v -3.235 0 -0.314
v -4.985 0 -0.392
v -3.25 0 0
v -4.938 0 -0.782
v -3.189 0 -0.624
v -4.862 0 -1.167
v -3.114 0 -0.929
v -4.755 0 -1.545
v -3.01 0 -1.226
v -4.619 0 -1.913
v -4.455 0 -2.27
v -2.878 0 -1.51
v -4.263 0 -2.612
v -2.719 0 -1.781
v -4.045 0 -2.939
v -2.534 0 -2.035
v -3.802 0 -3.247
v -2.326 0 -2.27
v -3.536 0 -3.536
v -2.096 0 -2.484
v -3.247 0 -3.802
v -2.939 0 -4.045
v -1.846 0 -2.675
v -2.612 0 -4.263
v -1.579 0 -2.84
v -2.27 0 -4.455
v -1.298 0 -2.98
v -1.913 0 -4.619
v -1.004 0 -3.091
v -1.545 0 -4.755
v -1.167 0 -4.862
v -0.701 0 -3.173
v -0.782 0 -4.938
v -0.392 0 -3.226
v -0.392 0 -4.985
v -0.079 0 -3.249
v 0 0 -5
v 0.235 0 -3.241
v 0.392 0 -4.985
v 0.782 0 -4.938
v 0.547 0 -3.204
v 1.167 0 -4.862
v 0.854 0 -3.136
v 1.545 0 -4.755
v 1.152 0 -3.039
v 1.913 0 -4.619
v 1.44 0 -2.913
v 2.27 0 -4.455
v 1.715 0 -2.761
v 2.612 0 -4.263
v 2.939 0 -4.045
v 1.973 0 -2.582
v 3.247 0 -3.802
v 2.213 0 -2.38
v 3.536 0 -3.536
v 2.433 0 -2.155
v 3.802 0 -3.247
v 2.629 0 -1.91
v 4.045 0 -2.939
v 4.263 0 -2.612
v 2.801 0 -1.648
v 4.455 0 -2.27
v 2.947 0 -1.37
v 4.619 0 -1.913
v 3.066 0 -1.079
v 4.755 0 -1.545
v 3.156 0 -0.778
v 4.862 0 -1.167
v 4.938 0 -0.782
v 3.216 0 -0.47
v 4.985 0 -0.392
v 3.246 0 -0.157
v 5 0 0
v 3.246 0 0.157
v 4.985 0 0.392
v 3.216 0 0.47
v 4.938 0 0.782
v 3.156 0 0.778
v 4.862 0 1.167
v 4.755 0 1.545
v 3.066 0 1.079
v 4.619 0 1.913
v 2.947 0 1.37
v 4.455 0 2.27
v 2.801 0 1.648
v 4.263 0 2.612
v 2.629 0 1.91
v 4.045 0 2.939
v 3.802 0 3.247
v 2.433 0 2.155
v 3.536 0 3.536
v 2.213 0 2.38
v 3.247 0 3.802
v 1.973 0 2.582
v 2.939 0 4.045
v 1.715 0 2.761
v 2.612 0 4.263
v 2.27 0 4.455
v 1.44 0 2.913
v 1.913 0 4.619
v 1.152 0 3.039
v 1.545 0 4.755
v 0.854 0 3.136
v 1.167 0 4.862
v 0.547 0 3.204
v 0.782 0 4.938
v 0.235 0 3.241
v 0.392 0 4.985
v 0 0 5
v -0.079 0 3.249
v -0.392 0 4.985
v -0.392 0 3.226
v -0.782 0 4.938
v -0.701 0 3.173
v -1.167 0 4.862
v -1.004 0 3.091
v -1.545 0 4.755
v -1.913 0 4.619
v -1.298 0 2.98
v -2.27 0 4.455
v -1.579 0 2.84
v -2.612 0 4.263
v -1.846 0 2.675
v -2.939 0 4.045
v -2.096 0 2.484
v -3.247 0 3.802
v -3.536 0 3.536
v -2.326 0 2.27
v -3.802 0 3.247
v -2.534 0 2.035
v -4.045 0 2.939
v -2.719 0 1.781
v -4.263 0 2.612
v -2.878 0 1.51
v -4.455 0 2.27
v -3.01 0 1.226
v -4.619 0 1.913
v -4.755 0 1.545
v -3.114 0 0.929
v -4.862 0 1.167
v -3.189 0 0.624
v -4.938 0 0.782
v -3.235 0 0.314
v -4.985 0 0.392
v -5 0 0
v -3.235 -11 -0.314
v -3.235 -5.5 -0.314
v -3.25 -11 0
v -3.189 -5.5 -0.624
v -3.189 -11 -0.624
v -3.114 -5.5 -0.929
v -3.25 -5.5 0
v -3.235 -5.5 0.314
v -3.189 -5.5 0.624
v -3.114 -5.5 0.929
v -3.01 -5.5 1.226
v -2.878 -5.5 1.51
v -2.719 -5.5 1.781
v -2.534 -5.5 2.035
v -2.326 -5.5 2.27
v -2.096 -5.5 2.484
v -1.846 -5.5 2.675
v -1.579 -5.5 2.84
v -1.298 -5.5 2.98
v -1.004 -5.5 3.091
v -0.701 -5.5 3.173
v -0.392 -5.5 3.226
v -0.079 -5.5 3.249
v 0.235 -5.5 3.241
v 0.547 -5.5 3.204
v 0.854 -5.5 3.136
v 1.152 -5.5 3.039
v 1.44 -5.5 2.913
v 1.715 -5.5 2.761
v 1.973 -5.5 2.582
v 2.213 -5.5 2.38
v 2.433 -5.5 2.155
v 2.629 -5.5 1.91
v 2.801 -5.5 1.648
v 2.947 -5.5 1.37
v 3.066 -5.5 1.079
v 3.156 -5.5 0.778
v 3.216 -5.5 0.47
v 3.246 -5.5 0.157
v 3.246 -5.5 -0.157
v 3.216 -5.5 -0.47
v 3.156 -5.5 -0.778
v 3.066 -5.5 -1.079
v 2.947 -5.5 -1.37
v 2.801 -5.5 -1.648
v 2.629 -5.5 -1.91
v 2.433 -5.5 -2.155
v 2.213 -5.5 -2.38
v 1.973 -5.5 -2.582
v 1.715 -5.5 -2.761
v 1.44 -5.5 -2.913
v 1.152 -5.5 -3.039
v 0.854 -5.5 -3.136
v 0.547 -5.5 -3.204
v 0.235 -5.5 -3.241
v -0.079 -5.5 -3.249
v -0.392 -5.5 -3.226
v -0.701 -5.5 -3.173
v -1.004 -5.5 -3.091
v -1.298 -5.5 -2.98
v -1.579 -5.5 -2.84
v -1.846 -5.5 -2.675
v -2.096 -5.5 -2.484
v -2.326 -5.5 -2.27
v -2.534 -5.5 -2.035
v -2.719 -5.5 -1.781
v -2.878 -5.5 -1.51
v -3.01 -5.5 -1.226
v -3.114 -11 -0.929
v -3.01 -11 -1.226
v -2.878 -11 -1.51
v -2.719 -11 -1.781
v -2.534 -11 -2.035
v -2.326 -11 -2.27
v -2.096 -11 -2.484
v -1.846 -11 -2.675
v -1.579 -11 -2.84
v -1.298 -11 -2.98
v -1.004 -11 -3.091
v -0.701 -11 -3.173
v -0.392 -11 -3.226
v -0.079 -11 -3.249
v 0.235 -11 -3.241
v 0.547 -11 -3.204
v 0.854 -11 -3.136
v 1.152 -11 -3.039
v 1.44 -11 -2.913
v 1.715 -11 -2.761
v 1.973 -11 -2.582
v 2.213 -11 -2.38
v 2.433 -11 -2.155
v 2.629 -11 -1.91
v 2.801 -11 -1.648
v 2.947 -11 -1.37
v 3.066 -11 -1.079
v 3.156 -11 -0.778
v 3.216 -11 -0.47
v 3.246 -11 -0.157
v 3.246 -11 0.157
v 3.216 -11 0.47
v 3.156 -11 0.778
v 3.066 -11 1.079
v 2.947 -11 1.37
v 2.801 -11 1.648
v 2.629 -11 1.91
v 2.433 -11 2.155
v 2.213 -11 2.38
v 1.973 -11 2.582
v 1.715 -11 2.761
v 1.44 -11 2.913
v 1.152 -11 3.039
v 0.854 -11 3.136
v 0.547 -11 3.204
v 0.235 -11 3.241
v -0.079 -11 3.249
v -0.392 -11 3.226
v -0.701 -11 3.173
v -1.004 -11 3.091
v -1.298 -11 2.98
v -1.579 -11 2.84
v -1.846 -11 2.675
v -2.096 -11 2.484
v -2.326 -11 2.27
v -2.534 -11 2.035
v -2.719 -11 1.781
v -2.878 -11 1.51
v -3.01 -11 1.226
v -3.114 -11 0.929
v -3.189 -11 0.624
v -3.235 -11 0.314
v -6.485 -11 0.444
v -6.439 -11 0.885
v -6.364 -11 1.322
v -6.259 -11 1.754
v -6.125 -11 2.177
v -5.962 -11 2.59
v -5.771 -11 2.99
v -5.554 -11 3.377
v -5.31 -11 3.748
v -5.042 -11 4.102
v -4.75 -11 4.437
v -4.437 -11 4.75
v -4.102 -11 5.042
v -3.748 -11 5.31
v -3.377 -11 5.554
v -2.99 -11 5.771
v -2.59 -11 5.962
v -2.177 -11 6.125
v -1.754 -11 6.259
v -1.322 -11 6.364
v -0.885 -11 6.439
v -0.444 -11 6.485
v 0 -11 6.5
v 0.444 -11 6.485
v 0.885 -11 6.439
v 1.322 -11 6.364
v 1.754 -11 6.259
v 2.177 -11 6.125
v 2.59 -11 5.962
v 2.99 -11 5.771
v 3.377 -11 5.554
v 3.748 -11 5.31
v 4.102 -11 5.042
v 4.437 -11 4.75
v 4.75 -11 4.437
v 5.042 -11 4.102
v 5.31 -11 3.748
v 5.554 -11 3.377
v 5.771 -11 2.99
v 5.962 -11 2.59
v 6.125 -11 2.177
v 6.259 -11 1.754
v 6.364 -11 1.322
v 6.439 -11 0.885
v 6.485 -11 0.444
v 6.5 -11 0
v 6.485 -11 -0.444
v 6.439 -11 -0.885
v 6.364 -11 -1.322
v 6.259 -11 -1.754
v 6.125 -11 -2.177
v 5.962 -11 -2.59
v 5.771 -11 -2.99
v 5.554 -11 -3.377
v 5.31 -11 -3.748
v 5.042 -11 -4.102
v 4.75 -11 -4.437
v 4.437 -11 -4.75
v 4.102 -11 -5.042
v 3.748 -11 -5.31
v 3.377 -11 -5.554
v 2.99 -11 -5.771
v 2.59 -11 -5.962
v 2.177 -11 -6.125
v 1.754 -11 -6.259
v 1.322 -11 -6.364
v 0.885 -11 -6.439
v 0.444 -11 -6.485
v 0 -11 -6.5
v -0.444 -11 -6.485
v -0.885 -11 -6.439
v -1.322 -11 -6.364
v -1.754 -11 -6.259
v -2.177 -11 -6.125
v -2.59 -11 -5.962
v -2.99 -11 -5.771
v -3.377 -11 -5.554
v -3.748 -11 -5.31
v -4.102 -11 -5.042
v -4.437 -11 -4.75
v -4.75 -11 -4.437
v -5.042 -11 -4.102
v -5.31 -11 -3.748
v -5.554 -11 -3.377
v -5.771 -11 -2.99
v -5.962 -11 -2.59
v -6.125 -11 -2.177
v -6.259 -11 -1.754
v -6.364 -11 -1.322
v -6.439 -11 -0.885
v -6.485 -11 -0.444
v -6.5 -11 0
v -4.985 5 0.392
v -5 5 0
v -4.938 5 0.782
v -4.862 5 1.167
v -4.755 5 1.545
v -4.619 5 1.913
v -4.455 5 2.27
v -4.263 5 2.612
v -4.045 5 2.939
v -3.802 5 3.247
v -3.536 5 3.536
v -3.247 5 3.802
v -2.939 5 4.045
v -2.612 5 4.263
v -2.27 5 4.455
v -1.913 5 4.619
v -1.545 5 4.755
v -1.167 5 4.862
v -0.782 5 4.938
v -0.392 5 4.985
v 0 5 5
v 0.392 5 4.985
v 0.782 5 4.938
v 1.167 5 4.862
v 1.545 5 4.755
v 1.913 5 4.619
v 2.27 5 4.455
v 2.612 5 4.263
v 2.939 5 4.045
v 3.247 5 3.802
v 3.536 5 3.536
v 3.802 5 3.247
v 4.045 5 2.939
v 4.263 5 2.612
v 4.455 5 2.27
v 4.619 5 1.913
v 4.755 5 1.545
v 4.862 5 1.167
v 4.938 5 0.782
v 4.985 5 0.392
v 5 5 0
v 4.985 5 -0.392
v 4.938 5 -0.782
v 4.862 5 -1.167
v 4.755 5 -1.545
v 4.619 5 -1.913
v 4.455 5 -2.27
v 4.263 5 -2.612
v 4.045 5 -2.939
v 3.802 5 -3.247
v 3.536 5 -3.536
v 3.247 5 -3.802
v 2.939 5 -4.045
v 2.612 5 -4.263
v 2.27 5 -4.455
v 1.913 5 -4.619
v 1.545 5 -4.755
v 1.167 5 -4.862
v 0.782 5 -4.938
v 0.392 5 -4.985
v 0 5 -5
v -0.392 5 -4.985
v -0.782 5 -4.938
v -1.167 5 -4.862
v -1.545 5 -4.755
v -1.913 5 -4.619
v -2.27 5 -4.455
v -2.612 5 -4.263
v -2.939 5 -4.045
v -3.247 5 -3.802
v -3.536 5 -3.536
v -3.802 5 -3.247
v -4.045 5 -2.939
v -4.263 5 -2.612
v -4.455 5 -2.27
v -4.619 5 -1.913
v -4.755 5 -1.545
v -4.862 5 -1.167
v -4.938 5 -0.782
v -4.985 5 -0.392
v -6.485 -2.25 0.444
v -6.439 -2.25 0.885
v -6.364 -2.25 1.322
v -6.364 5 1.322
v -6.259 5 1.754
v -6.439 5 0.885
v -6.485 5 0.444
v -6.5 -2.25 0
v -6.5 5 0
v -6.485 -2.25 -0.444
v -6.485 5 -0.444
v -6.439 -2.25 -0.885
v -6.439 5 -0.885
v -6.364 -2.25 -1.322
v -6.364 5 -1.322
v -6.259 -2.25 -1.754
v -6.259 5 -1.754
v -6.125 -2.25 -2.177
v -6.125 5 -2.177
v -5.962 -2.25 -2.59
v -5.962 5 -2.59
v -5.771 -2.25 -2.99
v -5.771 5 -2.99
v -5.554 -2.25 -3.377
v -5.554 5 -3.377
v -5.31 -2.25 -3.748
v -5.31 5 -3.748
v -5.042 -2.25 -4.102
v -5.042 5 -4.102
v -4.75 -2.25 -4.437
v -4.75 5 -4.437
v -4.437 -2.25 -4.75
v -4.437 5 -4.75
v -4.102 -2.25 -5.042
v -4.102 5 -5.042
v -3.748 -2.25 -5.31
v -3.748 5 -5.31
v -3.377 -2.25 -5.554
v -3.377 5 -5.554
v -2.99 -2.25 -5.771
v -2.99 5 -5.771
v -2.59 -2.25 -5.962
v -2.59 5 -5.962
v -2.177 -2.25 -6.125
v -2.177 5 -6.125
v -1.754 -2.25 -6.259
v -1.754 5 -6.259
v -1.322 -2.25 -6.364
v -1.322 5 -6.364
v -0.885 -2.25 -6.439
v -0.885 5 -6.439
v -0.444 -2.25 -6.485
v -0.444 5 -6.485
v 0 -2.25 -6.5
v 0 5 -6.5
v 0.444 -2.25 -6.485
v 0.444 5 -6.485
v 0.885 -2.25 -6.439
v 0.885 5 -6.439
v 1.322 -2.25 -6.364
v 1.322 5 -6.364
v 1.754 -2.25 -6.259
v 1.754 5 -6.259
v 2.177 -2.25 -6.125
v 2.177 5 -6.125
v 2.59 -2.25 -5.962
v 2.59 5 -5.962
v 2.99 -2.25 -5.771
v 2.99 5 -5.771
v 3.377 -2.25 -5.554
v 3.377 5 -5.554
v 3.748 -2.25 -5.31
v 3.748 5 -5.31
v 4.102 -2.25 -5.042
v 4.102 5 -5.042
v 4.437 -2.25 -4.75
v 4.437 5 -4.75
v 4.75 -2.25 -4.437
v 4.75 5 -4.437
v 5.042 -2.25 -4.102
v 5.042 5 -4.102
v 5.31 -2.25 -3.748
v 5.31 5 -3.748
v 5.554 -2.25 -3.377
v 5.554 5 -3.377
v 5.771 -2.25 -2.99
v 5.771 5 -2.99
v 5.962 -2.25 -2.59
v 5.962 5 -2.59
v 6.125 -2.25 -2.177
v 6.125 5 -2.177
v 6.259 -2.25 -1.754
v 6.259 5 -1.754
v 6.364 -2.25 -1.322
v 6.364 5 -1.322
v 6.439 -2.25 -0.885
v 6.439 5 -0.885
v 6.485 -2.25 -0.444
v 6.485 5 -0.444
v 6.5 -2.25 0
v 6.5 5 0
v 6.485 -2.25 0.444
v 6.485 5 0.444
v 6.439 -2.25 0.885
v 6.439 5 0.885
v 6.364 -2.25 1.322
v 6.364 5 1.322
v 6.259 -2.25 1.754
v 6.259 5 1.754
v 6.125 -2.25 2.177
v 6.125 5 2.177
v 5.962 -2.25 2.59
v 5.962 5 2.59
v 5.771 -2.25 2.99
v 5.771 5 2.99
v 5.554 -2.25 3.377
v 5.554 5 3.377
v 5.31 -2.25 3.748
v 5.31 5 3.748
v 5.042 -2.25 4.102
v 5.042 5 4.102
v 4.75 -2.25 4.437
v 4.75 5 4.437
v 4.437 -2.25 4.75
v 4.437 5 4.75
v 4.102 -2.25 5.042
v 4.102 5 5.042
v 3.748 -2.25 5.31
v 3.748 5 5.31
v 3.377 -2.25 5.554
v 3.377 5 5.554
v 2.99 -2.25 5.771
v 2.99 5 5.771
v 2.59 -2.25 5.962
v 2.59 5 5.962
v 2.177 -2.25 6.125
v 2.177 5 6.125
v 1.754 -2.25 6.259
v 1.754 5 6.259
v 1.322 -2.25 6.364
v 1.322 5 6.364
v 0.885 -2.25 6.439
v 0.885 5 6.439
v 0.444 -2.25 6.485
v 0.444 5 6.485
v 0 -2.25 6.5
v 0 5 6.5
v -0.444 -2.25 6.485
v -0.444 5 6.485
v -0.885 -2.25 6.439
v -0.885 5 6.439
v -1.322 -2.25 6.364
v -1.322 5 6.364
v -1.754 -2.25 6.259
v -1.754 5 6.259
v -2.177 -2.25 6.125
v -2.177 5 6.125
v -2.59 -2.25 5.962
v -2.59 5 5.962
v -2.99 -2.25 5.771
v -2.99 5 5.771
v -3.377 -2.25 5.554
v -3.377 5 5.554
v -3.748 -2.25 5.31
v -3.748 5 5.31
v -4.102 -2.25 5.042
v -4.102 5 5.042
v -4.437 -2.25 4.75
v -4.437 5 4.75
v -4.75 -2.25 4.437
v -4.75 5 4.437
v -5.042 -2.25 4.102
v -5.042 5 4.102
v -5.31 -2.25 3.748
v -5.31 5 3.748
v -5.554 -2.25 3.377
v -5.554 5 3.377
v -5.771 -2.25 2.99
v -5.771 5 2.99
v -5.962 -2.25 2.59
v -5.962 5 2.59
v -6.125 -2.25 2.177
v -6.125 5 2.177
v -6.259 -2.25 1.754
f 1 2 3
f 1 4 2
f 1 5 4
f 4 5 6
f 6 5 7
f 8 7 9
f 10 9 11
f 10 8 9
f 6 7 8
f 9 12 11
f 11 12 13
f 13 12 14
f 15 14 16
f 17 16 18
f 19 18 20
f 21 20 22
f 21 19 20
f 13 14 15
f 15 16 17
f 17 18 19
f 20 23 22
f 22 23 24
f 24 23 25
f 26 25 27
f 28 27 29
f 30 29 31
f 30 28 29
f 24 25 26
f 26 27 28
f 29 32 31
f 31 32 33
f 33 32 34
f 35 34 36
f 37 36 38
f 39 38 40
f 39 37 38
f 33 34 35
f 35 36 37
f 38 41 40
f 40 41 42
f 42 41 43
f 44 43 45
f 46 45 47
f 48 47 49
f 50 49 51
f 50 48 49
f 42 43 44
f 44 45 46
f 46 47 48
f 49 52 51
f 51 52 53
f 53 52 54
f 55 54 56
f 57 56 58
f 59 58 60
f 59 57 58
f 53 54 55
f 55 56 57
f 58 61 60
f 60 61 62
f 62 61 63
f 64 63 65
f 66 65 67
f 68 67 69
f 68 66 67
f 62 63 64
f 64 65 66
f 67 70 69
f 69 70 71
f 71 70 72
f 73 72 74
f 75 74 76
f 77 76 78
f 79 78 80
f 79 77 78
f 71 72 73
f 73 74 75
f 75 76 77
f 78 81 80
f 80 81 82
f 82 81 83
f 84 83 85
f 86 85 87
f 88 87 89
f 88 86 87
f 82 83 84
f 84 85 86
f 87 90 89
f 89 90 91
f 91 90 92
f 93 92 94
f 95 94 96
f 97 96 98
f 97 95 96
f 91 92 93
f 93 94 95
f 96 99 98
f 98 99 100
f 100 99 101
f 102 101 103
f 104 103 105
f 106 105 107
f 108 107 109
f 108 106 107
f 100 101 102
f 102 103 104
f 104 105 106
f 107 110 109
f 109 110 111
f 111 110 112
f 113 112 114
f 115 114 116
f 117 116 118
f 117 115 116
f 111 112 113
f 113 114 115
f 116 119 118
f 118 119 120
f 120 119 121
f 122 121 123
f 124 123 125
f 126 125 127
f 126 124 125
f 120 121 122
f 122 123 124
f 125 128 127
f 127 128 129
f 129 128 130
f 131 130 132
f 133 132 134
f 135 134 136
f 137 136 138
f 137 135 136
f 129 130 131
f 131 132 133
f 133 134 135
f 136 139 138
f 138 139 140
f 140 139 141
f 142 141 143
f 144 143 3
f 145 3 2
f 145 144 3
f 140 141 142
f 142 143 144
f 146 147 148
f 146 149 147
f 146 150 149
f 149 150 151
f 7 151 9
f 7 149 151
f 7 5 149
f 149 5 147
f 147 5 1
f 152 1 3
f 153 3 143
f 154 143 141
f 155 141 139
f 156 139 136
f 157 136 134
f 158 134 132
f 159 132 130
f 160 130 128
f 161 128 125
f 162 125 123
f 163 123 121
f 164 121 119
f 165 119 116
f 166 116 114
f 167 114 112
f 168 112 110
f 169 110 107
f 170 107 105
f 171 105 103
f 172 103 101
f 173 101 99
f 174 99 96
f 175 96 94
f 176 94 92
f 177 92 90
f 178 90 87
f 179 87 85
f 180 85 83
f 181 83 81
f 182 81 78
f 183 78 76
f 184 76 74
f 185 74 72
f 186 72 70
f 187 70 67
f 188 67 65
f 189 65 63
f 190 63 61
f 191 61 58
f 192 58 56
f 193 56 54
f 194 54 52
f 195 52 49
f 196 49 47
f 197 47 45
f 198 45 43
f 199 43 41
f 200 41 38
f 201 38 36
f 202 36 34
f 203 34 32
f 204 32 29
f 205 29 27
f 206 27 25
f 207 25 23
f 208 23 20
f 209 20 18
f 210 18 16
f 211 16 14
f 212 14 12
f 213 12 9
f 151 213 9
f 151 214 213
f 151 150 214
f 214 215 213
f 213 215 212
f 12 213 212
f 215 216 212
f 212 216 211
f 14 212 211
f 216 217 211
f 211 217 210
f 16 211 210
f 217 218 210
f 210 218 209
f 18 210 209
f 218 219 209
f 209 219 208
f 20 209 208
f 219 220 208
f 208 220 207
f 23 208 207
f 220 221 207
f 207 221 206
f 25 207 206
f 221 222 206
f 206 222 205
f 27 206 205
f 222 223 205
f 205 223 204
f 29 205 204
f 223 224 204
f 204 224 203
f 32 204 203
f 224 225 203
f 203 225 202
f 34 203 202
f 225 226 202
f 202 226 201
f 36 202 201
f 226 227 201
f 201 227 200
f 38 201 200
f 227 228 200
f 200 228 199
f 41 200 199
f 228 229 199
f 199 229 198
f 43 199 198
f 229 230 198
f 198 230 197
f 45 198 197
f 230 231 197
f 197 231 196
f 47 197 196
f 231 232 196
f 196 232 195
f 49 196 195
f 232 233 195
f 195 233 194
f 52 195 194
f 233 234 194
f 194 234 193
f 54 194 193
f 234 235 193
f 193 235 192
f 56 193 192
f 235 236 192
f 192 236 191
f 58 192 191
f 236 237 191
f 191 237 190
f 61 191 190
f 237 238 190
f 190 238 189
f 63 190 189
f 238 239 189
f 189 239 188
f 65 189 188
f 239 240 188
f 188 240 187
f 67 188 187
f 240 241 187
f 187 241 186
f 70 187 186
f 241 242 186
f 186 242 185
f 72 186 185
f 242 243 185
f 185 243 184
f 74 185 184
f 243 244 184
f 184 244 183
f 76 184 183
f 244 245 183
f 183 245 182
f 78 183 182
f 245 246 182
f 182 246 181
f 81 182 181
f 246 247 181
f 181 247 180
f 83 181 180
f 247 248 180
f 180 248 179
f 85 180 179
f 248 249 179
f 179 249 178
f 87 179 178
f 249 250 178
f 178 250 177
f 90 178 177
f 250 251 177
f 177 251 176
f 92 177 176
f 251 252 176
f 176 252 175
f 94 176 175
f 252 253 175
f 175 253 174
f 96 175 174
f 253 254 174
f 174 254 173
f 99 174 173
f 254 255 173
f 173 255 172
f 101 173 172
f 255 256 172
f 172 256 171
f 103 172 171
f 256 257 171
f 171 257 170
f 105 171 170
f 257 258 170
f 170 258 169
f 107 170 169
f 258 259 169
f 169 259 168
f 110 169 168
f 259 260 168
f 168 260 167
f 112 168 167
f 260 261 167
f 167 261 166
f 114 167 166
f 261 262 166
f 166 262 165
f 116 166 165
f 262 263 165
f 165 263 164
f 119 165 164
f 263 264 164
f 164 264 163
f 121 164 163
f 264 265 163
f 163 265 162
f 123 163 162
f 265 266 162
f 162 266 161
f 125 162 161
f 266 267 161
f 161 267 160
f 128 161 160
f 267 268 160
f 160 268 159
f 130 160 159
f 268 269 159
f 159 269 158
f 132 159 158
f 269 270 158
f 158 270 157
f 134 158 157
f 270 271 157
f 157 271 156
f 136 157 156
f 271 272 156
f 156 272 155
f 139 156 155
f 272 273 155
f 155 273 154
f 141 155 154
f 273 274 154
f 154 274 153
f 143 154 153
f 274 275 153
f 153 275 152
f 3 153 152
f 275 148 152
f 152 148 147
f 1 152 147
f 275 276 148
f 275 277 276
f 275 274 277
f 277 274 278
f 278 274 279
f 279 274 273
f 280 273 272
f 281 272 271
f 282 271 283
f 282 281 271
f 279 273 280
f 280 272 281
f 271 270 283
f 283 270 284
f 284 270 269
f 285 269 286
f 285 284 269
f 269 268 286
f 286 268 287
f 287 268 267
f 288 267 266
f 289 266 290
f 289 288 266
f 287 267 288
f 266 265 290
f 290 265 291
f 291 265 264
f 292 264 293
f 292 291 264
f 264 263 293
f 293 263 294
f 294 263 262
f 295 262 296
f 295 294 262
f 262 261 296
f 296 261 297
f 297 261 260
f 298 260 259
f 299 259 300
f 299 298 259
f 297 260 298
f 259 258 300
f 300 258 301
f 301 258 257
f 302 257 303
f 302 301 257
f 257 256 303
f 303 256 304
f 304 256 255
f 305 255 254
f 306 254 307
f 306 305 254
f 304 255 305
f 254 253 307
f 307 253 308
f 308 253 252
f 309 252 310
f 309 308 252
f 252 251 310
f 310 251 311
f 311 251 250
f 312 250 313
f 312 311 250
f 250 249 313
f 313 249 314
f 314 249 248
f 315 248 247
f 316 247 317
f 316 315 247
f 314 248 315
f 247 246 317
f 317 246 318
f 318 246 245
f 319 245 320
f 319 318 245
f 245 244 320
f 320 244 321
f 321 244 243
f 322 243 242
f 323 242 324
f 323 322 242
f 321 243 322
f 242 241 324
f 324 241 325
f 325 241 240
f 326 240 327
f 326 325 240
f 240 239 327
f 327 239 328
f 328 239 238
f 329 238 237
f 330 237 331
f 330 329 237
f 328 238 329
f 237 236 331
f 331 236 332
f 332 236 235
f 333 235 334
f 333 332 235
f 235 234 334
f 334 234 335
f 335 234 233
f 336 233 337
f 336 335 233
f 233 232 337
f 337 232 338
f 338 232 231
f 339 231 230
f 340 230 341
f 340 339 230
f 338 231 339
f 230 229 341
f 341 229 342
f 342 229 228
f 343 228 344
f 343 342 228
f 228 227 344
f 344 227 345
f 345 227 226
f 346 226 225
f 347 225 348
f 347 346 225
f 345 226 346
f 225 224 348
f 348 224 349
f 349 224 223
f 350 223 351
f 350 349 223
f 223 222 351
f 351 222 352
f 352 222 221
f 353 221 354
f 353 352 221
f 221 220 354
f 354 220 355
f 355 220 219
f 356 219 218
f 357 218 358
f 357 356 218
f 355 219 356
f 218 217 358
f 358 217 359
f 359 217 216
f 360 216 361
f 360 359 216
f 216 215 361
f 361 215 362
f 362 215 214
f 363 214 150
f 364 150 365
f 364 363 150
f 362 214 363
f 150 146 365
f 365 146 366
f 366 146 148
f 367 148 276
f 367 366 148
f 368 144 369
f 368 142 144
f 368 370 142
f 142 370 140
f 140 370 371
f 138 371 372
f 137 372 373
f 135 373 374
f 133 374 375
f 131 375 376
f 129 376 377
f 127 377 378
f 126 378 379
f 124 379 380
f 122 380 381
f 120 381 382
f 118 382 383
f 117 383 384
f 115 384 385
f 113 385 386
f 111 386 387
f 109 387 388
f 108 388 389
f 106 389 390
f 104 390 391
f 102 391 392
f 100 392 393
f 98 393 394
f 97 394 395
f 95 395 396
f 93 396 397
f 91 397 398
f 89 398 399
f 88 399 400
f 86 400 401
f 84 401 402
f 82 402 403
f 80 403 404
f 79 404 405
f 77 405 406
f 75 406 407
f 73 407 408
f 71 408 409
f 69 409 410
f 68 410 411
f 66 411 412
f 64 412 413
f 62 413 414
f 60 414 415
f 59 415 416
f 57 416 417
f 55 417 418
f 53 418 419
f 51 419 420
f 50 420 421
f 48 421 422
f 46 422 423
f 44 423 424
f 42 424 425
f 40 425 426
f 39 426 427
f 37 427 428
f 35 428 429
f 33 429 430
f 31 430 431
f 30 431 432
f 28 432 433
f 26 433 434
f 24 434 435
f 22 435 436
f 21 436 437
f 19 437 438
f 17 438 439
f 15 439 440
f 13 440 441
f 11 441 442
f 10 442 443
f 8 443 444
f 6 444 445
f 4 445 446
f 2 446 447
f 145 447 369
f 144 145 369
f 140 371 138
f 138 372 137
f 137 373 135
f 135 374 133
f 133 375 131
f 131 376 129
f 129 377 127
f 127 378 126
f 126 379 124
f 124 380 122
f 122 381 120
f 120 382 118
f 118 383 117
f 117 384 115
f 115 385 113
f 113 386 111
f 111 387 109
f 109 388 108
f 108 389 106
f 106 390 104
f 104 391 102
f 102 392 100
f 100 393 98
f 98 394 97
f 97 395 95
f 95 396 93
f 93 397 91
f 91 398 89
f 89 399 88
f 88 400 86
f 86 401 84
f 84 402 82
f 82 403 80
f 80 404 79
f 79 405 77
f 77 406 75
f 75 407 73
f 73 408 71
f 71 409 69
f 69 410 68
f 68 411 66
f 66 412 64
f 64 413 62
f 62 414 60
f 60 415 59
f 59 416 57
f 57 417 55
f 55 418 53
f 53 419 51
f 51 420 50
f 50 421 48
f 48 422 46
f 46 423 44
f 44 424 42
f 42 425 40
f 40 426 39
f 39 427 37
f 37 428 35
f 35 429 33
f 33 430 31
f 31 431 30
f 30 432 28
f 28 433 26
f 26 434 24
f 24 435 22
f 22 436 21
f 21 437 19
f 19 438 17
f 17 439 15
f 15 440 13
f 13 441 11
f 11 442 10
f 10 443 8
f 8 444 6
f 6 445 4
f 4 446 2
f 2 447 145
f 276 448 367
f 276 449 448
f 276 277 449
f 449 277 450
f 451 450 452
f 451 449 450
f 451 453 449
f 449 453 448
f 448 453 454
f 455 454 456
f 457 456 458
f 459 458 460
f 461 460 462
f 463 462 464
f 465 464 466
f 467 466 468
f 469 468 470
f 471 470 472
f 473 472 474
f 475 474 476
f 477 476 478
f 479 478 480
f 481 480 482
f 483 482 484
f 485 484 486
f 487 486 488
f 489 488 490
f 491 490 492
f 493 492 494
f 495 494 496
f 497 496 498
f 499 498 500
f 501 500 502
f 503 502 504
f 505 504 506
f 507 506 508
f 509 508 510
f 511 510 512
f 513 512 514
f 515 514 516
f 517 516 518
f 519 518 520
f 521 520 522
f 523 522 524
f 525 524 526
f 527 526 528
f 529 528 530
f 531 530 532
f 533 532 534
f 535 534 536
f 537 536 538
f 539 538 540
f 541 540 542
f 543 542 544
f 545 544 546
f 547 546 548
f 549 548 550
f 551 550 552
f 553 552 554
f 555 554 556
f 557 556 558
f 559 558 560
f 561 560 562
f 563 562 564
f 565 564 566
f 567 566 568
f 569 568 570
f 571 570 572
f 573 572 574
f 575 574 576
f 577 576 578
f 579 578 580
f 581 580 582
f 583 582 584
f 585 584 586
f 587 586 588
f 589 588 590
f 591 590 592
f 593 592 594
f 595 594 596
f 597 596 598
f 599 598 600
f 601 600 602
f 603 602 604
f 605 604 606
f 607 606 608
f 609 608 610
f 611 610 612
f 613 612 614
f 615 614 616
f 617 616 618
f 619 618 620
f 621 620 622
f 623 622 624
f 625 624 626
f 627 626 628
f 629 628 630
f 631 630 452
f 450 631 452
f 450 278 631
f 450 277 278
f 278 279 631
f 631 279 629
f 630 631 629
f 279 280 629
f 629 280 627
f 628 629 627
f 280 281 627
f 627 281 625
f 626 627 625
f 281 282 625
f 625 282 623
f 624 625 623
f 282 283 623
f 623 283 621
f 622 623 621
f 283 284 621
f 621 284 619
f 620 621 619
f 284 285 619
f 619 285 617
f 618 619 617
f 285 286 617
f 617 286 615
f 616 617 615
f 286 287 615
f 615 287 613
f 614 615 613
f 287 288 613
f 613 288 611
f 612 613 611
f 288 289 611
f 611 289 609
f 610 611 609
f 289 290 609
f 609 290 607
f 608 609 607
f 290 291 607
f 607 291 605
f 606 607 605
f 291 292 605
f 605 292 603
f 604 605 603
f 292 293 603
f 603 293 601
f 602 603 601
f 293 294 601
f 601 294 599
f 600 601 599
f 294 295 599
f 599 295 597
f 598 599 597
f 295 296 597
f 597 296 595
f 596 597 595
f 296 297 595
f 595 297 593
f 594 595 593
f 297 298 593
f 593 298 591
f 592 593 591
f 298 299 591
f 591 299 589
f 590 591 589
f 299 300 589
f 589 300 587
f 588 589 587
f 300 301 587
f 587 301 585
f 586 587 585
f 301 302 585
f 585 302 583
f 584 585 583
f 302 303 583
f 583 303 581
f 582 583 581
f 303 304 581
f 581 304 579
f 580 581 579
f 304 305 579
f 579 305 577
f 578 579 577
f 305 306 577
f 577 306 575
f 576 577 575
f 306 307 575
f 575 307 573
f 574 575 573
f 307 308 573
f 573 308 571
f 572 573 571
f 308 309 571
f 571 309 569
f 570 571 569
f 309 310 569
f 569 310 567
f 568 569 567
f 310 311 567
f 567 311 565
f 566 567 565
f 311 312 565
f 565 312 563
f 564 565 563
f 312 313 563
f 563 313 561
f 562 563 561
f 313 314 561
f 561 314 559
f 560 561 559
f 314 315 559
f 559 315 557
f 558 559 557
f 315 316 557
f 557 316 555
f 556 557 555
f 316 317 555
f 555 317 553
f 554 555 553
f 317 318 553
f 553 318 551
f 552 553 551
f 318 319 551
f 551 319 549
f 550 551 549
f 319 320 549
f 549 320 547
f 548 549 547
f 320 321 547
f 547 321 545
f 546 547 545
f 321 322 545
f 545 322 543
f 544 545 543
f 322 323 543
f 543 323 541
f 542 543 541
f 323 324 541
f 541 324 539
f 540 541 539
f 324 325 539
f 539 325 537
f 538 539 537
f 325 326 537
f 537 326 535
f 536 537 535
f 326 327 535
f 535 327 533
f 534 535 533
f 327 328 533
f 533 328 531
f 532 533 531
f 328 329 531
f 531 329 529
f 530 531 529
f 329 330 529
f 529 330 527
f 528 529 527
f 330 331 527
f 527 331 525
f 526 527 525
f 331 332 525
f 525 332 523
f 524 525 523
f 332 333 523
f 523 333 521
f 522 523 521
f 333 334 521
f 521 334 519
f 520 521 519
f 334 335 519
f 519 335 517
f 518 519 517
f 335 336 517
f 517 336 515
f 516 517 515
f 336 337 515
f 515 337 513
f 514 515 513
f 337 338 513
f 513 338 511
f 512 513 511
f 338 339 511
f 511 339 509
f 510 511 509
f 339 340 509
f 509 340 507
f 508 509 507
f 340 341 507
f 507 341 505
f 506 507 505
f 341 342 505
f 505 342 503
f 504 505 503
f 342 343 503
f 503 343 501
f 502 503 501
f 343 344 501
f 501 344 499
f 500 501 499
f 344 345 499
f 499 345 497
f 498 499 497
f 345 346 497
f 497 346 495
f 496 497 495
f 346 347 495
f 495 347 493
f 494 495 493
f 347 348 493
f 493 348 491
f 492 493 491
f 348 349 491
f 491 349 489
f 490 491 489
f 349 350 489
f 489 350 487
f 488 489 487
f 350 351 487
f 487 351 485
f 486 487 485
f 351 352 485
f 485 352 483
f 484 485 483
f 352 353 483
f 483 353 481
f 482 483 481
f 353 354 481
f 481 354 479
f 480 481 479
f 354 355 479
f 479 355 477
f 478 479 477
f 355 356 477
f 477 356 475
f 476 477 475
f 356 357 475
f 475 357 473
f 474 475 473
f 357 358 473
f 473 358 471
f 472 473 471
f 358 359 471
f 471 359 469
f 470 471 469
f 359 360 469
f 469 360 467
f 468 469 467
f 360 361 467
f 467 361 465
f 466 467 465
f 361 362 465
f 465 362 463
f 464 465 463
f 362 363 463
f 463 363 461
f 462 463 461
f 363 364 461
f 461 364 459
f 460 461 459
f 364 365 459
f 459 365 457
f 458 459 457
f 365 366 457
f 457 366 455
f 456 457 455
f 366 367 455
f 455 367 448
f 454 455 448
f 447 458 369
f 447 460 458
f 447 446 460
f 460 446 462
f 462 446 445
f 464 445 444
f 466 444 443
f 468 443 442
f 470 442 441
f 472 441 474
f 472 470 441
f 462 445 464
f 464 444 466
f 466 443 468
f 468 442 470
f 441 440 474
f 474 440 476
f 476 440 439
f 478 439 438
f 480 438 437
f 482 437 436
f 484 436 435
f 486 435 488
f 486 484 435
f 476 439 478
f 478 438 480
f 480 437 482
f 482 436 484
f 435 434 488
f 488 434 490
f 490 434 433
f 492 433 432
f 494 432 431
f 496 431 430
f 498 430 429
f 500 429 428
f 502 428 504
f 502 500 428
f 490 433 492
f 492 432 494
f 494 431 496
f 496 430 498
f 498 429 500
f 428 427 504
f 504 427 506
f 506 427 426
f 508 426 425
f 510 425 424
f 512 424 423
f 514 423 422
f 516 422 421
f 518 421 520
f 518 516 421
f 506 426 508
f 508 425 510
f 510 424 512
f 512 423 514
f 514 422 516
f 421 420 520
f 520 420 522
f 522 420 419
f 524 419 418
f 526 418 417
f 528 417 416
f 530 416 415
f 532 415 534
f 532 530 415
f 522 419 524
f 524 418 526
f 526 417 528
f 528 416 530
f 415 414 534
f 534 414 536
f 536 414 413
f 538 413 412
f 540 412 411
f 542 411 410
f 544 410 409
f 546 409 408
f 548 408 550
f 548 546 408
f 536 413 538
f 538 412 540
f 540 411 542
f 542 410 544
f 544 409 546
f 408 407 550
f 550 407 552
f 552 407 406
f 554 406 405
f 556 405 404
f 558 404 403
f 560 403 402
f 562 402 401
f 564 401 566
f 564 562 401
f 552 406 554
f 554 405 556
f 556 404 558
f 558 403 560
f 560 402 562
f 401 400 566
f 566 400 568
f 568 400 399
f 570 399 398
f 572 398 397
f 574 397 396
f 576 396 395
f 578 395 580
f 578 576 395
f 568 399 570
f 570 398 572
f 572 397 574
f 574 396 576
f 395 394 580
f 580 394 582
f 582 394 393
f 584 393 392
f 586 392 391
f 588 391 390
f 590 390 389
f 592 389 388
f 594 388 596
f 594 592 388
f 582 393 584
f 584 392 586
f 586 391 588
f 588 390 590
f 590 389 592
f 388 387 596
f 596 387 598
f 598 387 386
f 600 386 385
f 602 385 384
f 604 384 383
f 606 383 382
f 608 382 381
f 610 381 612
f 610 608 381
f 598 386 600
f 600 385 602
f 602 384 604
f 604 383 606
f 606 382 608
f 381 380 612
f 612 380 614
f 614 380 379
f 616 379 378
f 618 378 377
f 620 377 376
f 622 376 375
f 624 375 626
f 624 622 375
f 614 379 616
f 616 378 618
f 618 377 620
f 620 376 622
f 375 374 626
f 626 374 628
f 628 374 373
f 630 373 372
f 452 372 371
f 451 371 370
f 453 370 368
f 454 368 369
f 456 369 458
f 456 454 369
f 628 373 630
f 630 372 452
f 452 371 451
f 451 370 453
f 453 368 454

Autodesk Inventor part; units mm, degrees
ref_plane "YZ Plane" through (0, 0, 0) normal (1, 0, 0) x (0, 1, 0)
ref_plane "XZ Plane" through (0, 0, 0) normal (0, 1, 0) x (-1, 0, 0)
ref_plane "XY Plane" through (0, 0, 0) normal (0, 0, 1) x (1, 0, 0)
sketch "Sketch1" plane through (0, 0, 0) normal (0, 1, 0) x (-1, 0, 0)
  circle A0 centre (0, 0) radius 5
  circle A1 centre (0, 0) radius 6.5
  circle A2 centre (0, 0) radius 3.25
  dimension "d0" = 10
  dimension "d1" = 13
  dimension "d4" = 6.5
extrude "Extrusion5" add sketch "Sketch1" along normal blind 5 contours A1
extrude "Extrusion6" add sketch "Sketch1" against normal blind 11 contours A0 | A1
properties part number "clip_holder_ring"
